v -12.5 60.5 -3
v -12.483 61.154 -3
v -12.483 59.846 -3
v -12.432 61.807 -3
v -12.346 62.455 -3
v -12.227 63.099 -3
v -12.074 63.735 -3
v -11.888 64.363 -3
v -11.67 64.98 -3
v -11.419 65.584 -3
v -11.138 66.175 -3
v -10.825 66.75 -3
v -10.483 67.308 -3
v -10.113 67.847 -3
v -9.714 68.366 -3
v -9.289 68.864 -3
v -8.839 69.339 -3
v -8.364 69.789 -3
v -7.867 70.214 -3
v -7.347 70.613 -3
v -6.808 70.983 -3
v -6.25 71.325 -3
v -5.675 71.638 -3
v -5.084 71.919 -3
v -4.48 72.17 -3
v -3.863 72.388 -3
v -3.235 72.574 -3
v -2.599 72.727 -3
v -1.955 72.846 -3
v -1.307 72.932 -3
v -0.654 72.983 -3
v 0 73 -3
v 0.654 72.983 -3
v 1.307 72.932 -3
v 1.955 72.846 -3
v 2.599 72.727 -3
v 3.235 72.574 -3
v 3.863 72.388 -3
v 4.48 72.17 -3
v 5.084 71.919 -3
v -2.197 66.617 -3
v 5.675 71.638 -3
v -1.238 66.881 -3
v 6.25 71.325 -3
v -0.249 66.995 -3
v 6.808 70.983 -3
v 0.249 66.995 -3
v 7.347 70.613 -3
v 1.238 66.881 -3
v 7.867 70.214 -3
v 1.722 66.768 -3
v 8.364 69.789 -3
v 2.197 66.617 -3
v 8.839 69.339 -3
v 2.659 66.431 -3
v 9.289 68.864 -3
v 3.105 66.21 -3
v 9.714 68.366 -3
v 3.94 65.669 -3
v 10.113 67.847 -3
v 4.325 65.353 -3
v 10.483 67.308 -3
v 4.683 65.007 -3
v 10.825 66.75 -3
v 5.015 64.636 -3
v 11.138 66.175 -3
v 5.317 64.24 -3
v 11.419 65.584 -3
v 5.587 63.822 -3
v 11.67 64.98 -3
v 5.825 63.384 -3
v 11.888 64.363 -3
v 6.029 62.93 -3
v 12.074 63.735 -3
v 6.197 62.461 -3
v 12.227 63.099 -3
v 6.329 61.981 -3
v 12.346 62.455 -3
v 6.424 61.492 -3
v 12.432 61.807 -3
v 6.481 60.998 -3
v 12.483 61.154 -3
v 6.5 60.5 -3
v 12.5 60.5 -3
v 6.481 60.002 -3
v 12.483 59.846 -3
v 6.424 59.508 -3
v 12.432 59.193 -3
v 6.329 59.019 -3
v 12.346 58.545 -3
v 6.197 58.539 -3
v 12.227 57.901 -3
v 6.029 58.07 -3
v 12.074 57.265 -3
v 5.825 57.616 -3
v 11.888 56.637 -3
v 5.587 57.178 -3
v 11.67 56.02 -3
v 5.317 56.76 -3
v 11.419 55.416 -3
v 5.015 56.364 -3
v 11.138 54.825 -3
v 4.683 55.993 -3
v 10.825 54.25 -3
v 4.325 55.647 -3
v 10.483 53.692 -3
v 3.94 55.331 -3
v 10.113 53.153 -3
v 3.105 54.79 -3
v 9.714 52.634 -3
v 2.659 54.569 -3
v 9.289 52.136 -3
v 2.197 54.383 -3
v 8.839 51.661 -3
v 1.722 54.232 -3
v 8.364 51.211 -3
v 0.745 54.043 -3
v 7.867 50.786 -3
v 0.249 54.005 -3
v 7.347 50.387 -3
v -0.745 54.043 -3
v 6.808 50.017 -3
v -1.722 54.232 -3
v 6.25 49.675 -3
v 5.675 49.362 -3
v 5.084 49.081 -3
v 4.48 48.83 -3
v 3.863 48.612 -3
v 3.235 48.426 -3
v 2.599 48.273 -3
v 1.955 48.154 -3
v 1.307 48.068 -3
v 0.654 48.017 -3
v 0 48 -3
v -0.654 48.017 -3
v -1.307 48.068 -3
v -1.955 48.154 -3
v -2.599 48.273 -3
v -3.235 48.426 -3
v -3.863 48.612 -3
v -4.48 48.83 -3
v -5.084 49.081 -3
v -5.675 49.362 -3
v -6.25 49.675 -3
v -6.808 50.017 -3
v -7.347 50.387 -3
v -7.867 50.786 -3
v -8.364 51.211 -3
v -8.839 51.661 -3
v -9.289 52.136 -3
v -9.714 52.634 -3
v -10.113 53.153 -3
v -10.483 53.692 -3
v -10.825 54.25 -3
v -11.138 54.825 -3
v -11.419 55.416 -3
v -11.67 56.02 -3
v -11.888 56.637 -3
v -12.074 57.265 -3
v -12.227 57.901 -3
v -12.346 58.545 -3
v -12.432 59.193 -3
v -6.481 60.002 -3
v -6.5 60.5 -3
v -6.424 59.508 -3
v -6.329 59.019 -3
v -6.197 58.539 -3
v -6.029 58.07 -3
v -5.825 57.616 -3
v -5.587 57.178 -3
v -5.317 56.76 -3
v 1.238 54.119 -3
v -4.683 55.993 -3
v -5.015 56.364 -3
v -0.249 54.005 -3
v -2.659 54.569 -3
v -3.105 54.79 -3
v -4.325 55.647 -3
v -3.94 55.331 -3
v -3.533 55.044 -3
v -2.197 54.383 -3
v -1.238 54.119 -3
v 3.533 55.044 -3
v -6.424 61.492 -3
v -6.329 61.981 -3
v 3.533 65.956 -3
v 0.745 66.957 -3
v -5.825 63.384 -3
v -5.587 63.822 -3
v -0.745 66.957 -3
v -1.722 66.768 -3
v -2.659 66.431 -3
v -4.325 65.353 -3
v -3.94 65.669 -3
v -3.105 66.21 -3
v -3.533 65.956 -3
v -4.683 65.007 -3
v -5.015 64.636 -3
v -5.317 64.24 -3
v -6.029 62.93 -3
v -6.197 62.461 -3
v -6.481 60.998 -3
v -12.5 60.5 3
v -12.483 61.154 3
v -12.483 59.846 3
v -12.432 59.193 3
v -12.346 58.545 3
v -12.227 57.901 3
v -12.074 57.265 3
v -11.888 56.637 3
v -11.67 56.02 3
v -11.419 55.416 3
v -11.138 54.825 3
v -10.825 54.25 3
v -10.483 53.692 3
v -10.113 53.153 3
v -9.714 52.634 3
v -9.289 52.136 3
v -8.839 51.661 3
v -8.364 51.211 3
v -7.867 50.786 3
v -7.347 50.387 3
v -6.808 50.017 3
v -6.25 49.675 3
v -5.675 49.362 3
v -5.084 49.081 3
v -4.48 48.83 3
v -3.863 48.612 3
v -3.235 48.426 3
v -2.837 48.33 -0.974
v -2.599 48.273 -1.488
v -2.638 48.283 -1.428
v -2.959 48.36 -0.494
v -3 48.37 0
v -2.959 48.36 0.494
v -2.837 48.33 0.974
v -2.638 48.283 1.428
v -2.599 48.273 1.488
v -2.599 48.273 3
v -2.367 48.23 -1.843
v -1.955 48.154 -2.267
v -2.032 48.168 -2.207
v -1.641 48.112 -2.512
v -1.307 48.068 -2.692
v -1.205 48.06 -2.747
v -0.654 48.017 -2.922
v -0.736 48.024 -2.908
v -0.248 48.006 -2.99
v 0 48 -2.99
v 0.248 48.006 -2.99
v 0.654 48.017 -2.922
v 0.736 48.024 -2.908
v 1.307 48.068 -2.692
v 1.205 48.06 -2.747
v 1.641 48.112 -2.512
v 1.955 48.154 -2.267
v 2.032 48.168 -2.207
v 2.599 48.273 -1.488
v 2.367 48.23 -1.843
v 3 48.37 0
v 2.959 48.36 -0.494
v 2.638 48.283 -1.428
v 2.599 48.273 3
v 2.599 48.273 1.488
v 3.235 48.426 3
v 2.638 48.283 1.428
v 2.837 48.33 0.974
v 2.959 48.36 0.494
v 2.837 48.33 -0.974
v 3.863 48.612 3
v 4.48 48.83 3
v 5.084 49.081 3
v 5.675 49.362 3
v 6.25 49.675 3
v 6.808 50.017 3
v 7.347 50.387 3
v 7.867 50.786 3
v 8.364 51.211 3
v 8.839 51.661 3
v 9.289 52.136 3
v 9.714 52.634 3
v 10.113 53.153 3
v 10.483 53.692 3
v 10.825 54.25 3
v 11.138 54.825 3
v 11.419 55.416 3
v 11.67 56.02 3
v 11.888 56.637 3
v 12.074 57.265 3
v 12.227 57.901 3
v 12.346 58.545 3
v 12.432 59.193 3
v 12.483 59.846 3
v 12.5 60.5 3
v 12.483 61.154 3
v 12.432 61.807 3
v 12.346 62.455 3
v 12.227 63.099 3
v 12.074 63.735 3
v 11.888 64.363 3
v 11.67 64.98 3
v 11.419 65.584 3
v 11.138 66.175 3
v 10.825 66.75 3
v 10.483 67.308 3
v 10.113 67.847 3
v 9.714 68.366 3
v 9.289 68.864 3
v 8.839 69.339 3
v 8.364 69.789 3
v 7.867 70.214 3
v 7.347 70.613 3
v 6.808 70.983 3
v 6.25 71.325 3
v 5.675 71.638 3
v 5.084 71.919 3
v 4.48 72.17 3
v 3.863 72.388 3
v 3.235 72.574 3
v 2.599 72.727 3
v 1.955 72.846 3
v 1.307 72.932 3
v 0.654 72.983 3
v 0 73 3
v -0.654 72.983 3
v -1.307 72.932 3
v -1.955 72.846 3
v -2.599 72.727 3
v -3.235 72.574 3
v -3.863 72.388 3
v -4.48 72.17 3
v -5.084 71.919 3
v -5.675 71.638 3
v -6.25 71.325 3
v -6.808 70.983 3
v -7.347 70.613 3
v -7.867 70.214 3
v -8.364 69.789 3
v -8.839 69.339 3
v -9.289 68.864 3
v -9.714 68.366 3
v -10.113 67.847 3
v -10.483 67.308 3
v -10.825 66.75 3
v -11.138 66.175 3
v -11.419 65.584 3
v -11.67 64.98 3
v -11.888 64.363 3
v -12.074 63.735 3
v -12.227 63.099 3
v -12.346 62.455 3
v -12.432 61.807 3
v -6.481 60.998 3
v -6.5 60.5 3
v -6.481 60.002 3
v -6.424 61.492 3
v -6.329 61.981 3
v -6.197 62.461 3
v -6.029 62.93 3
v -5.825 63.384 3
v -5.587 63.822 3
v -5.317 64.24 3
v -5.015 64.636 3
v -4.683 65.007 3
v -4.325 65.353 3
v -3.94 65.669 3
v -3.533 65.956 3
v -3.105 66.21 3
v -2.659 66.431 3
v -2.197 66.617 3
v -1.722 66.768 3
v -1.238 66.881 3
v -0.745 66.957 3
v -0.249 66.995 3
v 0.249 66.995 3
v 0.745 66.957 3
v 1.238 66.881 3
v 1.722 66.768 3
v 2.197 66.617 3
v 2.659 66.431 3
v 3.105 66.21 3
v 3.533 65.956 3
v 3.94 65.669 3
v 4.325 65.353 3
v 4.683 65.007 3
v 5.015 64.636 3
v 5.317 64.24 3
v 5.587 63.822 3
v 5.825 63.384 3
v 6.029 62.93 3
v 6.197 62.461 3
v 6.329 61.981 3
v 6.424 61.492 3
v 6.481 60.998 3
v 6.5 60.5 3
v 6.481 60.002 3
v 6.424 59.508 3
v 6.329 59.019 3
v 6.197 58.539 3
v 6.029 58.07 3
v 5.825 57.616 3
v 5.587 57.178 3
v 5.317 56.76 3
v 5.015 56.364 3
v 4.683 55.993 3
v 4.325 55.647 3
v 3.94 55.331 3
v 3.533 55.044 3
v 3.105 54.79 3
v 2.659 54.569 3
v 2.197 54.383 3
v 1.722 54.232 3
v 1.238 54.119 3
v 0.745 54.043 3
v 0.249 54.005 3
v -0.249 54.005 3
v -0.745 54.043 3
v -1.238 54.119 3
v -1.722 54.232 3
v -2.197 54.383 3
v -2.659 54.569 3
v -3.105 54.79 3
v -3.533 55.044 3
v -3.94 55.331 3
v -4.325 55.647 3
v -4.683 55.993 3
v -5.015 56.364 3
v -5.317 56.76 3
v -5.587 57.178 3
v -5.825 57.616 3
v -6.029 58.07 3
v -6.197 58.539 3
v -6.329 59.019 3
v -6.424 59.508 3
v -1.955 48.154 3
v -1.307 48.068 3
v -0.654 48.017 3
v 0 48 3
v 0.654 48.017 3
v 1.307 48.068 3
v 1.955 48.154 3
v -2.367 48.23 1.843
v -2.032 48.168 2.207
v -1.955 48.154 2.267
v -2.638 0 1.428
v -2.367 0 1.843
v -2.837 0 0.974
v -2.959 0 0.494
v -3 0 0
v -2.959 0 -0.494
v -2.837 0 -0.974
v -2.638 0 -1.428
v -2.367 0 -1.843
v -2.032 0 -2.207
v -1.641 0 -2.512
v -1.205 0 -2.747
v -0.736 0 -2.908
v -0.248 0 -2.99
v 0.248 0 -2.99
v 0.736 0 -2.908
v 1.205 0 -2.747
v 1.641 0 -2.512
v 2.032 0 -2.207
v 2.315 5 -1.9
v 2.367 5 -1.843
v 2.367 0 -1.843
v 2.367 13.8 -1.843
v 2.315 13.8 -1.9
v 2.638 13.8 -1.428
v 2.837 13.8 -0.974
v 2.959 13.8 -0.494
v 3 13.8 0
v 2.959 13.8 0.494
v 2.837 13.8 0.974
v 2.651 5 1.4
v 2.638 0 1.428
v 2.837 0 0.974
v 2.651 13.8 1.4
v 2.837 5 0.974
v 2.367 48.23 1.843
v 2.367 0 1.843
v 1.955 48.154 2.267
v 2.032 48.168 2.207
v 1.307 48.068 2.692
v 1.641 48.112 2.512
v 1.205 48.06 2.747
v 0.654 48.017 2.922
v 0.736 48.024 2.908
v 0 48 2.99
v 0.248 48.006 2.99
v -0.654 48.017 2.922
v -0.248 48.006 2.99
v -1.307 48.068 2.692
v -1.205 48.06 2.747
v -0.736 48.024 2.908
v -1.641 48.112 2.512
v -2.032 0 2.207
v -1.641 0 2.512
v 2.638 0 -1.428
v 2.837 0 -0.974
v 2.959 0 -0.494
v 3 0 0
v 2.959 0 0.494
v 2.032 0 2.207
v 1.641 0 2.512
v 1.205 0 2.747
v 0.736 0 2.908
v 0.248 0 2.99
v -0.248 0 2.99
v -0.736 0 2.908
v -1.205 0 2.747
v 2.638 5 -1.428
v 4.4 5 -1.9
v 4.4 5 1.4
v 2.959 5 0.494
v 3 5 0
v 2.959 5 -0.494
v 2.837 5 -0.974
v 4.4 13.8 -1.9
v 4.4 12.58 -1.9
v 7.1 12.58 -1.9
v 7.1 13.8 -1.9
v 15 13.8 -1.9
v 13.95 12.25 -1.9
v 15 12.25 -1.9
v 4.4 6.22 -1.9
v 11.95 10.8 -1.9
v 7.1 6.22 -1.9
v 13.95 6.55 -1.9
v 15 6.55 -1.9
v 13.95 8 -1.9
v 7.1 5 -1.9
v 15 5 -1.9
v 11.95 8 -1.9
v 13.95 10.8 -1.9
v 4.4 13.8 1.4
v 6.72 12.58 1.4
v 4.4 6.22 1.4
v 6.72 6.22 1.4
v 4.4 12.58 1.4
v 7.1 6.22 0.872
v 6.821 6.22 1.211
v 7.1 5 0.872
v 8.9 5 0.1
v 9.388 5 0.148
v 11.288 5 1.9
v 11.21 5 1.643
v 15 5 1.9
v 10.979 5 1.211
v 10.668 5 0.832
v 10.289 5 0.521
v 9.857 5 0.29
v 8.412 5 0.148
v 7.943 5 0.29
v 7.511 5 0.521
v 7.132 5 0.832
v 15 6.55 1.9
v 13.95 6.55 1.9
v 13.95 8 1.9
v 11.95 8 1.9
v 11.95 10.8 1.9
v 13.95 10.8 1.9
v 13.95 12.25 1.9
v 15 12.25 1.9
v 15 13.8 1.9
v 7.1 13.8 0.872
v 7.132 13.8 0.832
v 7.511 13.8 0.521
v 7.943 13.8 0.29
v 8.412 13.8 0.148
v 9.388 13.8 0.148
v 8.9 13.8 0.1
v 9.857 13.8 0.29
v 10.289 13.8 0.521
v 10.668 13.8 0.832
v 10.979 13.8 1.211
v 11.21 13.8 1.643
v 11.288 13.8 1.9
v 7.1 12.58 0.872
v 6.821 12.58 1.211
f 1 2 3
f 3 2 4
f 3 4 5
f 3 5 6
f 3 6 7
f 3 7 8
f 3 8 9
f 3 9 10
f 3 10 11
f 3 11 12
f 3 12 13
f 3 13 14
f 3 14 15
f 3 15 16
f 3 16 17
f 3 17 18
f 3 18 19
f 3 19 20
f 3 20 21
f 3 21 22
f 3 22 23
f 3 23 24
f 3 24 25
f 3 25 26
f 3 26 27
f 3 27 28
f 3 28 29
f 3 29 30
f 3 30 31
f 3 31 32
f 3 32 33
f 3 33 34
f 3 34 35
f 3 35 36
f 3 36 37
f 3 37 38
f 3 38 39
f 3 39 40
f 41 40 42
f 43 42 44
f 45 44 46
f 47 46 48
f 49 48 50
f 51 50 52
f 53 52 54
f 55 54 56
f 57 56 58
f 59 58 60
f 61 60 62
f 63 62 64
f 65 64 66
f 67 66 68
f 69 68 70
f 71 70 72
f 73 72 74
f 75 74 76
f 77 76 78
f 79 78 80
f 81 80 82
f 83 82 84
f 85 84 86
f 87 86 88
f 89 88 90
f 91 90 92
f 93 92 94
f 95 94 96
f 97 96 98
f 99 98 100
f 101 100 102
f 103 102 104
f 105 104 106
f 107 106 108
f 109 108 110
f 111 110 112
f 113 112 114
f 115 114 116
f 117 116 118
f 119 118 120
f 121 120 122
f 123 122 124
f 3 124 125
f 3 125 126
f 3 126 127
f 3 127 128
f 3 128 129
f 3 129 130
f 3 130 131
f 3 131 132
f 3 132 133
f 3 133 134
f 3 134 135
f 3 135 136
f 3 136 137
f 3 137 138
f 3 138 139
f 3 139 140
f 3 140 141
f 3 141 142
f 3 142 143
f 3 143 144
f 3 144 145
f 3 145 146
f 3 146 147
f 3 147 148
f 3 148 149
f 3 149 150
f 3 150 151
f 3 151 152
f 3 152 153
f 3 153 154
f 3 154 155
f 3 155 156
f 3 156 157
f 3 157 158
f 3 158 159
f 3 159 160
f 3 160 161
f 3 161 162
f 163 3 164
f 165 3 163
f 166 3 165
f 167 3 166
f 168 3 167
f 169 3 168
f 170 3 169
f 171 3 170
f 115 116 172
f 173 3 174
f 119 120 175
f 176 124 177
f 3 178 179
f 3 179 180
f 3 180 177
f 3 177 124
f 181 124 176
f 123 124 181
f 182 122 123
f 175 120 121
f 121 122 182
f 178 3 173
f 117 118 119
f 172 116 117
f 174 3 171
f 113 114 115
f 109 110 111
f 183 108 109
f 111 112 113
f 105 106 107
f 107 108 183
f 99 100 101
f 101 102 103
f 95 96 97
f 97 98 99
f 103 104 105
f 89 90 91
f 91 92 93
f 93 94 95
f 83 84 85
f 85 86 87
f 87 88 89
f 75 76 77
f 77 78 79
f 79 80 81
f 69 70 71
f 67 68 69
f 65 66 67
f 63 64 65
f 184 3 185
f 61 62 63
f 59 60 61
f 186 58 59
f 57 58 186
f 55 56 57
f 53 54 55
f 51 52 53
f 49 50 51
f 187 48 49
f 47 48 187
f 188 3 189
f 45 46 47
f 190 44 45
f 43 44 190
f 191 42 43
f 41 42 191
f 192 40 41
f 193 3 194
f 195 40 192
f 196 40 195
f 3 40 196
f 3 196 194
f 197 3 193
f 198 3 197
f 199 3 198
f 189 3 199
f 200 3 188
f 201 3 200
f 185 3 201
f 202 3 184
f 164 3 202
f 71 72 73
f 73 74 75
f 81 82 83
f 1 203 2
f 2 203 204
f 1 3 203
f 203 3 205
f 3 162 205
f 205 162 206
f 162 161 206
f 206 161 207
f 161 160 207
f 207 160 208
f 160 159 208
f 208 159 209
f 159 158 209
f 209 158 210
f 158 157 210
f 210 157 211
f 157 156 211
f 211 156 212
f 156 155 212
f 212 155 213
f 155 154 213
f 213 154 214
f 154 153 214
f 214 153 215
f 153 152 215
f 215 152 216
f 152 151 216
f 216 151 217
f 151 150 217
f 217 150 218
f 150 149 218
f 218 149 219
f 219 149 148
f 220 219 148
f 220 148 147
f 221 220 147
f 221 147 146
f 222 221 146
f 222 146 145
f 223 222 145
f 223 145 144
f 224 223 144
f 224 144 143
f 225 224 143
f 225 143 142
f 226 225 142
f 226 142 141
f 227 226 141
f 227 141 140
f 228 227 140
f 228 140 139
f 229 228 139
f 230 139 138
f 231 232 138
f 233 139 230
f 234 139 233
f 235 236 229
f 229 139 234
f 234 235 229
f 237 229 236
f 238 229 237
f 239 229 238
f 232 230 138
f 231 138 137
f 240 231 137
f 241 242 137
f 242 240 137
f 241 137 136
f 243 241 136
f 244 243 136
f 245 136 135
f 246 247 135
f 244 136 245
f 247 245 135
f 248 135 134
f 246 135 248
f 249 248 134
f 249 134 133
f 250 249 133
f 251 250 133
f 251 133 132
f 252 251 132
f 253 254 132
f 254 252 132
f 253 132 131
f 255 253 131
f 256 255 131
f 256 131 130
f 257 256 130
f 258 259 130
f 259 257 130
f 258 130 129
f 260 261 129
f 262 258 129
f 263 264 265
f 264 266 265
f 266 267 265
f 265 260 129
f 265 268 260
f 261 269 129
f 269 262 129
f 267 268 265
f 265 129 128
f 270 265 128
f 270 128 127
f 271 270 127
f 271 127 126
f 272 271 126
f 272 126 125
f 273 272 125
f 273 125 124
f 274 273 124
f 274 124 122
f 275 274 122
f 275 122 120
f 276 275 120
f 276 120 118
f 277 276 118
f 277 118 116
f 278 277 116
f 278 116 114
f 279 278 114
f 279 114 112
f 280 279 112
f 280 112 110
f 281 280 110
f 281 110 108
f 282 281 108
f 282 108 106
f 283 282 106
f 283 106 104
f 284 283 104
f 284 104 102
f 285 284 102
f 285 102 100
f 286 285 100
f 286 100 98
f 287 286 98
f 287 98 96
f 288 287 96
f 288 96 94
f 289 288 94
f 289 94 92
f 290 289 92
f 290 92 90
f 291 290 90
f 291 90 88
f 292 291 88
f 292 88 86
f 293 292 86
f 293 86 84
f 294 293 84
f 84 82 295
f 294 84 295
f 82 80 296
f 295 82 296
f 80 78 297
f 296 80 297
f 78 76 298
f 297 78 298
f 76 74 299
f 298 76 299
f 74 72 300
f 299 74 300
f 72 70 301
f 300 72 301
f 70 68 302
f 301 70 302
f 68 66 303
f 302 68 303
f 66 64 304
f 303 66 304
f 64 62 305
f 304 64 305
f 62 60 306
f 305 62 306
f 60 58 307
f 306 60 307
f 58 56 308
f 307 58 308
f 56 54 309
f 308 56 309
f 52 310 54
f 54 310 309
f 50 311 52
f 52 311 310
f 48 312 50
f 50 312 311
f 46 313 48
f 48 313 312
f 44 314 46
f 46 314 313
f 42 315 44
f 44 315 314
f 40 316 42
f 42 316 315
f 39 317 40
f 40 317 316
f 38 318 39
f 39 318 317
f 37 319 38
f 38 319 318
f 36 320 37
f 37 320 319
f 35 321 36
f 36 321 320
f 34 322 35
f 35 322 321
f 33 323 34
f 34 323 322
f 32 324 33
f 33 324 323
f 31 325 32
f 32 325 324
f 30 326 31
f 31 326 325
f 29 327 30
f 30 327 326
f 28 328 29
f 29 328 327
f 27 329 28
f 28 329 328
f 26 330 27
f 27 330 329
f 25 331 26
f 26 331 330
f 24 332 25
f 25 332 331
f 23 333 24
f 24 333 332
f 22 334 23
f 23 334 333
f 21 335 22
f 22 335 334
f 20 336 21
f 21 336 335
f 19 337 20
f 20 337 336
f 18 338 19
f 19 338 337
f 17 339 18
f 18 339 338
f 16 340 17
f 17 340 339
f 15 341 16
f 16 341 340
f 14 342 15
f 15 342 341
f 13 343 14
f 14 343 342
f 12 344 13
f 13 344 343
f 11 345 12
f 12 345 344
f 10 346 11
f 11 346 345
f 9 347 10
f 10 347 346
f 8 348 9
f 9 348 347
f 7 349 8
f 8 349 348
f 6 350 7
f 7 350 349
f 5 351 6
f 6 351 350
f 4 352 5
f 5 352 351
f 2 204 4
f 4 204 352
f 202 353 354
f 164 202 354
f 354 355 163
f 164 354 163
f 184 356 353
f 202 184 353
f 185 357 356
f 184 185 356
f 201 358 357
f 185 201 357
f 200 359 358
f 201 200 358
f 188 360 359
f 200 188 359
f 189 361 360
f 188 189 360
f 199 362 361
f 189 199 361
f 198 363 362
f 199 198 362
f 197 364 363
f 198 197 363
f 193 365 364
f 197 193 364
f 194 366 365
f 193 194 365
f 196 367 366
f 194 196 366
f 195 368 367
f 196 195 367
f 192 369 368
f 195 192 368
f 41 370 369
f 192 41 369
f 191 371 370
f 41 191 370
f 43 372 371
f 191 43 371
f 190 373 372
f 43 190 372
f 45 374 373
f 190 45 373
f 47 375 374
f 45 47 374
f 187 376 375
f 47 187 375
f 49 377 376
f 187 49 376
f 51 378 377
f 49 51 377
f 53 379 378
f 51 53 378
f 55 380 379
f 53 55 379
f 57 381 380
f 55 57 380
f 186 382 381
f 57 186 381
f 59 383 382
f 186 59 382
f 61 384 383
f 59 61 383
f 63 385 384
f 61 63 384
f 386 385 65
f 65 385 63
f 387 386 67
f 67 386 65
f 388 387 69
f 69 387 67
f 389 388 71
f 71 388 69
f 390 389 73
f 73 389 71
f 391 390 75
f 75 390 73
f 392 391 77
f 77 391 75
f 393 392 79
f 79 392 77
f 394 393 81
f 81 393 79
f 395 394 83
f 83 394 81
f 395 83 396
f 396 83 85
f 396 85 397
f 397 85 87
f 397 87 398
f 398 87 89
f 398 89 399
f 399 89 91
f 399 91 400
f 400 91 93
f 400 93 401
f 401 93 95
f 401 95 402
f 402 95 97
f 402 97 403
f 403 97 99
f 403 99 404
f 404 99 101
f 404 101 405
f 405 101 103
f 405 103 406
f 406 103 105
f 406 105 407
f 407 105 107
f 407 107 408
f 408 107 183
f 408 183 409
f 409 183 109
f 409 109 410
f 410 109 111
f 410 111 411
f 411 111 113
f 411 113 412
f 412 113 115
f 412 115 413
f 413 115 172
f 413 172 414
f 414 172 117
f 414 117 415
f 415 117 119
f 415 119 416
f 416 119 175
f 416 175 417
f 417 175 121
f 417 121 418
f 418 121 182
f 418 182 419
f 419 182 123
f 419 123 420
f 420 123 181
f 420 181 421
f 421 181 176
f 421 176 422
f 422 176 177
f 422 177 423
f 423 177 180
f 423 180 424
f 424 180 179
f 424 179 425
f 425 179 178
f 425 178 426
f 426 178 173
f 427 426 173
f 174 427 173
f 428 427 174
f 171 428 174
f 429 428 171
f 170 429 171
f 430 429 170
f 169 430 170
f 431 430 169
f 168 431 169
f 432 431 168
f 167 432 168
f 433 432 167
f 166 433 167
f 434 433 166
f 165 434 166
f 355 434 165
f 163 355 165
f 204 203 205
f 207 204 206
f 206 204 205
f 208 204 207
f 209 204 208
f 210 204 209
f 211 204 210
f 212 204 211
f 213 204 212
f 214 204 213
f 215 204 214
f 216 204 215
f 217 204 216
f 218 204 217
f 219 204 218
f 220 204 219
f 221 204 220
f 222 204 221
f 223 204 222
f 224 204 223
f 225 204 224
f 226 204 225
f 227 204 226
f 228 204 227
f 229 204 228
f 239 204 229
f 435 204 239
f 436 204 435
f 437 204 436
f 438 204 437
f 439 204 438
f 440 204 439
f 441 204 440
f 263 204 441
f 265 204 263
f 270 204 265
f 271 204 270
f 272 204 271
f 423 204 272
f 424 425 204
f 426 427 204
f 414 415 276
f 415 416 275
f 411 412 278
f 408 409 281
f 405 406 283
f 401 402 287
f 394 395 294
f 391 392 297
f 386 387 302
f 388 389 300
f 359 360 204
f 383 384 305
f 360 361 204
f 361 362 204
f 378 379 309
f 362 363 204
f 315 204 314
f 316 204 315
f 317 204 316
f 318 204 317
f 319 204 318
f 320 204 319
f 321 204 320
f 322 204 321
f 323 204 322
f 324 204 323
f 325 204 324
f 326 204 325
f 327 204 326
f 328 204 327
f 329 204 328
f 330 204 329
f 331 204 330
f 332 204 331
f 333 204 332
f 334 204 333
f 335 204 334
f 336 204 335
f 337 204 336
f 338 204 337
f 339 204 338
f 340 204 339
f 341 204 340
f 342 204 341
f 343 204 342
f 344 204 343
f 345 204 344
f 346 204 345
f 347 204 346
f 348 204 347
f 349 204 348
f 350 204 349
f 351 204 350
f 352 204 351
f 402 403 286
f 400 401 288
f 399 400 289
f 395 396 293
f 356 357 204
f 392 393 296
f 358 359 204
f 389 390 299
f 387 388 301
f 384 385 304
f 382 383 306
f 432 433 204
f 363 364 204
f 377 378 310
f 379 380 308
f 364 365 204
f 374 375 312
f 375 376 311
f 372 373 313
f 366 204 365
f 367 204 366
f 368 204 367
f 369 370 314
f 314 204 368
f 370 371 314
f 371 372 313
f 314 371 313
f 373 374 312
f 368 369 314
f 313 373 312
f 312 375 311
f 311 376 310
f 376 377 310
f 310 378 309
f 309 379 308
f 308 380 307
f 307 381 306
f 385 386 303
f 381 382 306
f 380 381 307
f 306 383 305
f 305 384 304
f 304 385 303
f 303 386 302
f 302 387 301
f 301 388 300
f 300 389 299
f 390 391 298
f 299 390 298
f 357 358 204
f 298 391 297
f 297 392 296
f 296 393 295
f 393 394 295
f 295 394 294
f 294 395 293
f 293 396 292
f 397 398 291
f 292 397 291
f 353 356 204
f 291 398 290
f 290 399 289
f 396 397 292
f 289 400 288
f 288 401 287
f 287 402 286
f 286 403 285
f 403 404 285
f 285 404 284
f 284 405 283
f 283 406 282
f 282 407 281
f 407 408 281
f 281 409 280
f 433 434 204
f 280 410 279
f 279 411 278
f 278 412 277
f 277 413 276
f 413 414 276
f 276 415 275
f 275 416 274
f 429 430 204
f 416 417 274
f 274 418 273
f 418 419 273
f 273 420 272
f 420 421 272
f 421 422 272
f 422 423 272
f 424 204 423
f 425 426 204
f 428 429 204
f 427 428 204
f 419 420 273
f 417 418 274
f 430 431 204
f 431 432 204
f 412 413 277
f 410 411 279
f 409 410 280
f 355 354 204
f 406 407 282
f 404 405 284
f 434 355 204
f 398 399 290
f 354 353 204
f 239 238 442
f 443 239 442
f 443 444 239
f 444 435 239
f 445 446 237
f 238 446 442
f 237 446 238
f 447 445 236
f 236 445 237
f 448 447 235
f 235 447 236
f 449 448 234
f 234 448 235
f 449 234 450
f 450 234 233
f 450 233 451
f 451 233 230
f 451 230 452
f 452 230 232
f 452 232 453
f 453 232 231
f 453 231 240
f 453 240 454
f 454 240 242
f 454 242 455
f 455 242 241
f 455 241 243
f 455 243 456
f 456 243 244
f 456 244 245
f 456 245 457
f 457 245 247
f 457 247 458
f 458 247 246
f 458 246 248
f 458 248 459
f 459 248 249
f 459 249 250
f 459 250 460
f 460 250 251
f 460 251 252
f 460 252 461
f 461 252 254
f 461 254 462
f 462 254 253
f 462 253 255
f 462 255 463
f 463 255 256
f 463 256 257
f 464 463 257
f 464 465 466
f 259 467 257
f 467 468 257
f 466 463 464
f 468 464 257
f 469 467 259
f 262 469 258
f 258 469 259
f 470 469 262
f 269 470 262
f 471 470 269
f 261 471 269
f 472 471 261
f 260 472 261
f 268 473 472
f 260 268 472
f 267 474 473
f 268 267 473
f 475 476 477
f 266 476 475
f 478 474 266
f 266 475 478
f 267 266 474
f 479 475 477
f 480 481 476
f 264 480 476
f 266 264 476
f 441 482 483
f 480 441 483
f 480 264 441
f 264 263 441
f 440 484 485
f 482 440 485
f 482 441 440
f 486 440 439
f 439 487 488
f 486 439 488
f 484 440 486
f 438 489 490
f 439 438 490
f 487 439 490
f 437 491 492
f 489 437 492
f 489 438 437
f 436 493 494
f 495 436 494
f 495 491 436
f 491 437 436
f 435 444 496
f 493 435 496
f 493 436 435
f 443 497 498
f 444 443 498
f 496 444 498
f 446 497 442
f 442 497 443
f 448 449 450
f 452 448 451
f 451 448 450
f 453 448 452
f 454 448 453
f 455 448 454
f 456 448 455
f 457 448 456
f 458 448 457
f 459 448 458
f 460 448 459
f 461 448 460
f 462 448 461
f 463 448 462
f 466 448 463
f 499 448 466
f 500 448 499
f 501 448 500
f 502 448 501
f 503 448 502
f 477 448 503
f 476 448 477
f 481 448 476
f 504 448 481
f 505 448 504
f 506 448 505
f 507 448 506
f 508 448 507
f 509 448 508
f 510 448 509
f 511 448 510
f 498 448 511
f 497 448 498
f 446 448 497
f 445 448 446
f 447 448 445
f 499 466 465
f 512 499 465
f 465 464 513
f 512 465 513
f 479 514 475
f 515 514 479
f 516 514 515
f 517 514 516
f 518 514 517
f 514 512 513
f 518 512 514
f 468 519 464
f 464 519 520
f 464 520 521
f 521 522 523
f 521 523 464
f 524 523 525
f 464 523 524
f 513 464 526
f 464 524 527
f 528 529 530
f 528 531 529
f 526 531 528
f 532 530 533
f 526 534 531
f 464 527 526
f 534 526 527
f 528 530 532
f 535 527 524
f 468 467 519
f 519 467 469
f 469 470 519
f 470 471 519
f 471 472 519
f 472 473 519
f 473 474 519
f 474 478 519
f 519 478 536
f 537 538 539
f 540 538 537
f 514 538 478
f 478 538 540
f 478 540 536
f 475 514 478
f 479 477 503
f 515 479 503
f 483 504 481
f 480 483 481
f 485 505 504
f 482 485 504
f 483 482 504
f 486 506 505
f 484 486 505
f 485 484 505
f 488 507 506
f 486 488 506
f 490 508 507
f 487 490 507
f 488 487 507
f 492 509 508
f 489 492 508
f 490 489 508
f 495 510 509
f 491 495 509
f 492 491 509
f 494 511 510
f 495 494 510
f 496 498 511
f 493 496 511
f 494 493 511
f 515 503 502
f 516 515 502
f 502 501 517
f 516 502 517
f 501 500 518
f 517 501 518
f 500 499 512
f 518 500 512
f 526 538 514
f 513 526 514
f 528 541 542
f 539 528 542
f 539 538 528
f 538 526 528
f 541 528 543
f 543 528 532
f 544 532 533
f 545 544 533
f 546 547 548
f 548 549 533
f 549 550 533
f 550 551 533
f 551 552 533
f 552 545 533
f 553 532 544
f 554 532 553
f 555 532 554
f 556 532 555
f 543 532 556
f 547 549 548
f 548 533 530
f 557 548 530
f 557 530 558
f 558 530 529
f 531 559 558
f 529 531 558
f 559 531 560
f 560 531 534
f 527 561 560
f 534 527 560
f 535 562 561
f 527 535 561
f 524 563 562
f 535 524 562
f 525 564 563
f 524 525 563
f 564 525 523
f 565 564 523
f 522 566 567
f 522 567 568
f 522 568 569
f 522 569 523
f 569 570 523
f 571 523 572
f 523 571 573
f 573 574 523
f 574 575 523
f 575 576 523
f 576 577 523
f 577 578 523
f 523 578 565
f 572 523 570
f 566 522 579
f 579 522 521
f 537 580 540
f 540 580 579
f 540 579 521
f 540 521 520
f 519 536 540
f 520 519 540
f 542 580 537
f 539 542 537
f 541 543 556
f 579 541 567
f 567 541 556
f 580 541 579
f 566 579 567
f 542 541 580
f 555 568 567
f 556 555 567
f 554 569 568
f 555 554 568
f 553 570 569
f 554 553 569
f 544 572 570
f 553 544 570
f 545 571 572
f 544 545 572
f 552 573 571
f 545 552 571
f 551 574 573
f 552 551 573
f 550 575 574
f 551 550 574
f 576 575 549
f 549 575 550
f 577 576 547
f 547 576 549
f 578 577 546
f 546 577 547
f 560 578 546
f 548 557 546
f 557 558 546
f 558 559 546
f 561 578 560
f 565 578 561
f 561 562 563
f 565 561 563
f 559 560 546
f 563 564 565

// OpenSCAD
// Old-fashioned key

module key (th = 15, td = 8.8, tw = 3.8, tm = 5, dia = 6.0, l = 51)
{
    // th: teeth-height
    // td: teeth-depth
    // tw: teeth-width
    // tm: teeth-mount (on round part)
    grip_r = th * 5 / 6;
    rotate ([-90, 0, 0])
        cylinder (h = l, r = dia / 2, $fa = 3, $fs = 0.5);
    tcr = 2.5;
    // teeth
    difference () {
        translate ([0, tm, -tw / 2])
            cube ([th, td, tw]);
        translate ([th - 1.05, tm + (td - 5.7) / 2, -2 * tw])
            cube ([5.7, 5.7, 4 * tw]);
        translate ([th - 3.05, tm + (td - 2.8) / 2, -2 * tw])
            cube ([2.8, 2.8, 4 * tw]);
        translate ([4.4, tm - 2.7 + 1.22, -2 * tw])
            cube ([2.7, 2.7, 4 * tw]);
        translate ([4.4, tm + td  - 1.22, -2 * tw])
            cube ([2.7, 2.7, 4 * tw]);
        translate ([0, tm - 1 / 2, tw / 2 - 0.5])
            cube ([td + 1, td + 1, tw]);
        translate ([th - 6.1, 0, tcr - tw / 2 + 2.0])
            rotate ([-90, 0, 0])
                cylinder (r = tcr, h = 2 * td, $fa = 3, $fs = 0.5);
    }
    translate ([0, grip_r - dia / 2 + l, 0]) difference () {
        cylinder ( h = dia,     r = grip_r
                 , center = true, $fa = 3, $fs = 0.5
                 );
        cylinder ( h = dia * 3, r = grip_r - dia
                 , center = true, $fa = 3, $fs = 0.5
                 );
    }

}

key ();
